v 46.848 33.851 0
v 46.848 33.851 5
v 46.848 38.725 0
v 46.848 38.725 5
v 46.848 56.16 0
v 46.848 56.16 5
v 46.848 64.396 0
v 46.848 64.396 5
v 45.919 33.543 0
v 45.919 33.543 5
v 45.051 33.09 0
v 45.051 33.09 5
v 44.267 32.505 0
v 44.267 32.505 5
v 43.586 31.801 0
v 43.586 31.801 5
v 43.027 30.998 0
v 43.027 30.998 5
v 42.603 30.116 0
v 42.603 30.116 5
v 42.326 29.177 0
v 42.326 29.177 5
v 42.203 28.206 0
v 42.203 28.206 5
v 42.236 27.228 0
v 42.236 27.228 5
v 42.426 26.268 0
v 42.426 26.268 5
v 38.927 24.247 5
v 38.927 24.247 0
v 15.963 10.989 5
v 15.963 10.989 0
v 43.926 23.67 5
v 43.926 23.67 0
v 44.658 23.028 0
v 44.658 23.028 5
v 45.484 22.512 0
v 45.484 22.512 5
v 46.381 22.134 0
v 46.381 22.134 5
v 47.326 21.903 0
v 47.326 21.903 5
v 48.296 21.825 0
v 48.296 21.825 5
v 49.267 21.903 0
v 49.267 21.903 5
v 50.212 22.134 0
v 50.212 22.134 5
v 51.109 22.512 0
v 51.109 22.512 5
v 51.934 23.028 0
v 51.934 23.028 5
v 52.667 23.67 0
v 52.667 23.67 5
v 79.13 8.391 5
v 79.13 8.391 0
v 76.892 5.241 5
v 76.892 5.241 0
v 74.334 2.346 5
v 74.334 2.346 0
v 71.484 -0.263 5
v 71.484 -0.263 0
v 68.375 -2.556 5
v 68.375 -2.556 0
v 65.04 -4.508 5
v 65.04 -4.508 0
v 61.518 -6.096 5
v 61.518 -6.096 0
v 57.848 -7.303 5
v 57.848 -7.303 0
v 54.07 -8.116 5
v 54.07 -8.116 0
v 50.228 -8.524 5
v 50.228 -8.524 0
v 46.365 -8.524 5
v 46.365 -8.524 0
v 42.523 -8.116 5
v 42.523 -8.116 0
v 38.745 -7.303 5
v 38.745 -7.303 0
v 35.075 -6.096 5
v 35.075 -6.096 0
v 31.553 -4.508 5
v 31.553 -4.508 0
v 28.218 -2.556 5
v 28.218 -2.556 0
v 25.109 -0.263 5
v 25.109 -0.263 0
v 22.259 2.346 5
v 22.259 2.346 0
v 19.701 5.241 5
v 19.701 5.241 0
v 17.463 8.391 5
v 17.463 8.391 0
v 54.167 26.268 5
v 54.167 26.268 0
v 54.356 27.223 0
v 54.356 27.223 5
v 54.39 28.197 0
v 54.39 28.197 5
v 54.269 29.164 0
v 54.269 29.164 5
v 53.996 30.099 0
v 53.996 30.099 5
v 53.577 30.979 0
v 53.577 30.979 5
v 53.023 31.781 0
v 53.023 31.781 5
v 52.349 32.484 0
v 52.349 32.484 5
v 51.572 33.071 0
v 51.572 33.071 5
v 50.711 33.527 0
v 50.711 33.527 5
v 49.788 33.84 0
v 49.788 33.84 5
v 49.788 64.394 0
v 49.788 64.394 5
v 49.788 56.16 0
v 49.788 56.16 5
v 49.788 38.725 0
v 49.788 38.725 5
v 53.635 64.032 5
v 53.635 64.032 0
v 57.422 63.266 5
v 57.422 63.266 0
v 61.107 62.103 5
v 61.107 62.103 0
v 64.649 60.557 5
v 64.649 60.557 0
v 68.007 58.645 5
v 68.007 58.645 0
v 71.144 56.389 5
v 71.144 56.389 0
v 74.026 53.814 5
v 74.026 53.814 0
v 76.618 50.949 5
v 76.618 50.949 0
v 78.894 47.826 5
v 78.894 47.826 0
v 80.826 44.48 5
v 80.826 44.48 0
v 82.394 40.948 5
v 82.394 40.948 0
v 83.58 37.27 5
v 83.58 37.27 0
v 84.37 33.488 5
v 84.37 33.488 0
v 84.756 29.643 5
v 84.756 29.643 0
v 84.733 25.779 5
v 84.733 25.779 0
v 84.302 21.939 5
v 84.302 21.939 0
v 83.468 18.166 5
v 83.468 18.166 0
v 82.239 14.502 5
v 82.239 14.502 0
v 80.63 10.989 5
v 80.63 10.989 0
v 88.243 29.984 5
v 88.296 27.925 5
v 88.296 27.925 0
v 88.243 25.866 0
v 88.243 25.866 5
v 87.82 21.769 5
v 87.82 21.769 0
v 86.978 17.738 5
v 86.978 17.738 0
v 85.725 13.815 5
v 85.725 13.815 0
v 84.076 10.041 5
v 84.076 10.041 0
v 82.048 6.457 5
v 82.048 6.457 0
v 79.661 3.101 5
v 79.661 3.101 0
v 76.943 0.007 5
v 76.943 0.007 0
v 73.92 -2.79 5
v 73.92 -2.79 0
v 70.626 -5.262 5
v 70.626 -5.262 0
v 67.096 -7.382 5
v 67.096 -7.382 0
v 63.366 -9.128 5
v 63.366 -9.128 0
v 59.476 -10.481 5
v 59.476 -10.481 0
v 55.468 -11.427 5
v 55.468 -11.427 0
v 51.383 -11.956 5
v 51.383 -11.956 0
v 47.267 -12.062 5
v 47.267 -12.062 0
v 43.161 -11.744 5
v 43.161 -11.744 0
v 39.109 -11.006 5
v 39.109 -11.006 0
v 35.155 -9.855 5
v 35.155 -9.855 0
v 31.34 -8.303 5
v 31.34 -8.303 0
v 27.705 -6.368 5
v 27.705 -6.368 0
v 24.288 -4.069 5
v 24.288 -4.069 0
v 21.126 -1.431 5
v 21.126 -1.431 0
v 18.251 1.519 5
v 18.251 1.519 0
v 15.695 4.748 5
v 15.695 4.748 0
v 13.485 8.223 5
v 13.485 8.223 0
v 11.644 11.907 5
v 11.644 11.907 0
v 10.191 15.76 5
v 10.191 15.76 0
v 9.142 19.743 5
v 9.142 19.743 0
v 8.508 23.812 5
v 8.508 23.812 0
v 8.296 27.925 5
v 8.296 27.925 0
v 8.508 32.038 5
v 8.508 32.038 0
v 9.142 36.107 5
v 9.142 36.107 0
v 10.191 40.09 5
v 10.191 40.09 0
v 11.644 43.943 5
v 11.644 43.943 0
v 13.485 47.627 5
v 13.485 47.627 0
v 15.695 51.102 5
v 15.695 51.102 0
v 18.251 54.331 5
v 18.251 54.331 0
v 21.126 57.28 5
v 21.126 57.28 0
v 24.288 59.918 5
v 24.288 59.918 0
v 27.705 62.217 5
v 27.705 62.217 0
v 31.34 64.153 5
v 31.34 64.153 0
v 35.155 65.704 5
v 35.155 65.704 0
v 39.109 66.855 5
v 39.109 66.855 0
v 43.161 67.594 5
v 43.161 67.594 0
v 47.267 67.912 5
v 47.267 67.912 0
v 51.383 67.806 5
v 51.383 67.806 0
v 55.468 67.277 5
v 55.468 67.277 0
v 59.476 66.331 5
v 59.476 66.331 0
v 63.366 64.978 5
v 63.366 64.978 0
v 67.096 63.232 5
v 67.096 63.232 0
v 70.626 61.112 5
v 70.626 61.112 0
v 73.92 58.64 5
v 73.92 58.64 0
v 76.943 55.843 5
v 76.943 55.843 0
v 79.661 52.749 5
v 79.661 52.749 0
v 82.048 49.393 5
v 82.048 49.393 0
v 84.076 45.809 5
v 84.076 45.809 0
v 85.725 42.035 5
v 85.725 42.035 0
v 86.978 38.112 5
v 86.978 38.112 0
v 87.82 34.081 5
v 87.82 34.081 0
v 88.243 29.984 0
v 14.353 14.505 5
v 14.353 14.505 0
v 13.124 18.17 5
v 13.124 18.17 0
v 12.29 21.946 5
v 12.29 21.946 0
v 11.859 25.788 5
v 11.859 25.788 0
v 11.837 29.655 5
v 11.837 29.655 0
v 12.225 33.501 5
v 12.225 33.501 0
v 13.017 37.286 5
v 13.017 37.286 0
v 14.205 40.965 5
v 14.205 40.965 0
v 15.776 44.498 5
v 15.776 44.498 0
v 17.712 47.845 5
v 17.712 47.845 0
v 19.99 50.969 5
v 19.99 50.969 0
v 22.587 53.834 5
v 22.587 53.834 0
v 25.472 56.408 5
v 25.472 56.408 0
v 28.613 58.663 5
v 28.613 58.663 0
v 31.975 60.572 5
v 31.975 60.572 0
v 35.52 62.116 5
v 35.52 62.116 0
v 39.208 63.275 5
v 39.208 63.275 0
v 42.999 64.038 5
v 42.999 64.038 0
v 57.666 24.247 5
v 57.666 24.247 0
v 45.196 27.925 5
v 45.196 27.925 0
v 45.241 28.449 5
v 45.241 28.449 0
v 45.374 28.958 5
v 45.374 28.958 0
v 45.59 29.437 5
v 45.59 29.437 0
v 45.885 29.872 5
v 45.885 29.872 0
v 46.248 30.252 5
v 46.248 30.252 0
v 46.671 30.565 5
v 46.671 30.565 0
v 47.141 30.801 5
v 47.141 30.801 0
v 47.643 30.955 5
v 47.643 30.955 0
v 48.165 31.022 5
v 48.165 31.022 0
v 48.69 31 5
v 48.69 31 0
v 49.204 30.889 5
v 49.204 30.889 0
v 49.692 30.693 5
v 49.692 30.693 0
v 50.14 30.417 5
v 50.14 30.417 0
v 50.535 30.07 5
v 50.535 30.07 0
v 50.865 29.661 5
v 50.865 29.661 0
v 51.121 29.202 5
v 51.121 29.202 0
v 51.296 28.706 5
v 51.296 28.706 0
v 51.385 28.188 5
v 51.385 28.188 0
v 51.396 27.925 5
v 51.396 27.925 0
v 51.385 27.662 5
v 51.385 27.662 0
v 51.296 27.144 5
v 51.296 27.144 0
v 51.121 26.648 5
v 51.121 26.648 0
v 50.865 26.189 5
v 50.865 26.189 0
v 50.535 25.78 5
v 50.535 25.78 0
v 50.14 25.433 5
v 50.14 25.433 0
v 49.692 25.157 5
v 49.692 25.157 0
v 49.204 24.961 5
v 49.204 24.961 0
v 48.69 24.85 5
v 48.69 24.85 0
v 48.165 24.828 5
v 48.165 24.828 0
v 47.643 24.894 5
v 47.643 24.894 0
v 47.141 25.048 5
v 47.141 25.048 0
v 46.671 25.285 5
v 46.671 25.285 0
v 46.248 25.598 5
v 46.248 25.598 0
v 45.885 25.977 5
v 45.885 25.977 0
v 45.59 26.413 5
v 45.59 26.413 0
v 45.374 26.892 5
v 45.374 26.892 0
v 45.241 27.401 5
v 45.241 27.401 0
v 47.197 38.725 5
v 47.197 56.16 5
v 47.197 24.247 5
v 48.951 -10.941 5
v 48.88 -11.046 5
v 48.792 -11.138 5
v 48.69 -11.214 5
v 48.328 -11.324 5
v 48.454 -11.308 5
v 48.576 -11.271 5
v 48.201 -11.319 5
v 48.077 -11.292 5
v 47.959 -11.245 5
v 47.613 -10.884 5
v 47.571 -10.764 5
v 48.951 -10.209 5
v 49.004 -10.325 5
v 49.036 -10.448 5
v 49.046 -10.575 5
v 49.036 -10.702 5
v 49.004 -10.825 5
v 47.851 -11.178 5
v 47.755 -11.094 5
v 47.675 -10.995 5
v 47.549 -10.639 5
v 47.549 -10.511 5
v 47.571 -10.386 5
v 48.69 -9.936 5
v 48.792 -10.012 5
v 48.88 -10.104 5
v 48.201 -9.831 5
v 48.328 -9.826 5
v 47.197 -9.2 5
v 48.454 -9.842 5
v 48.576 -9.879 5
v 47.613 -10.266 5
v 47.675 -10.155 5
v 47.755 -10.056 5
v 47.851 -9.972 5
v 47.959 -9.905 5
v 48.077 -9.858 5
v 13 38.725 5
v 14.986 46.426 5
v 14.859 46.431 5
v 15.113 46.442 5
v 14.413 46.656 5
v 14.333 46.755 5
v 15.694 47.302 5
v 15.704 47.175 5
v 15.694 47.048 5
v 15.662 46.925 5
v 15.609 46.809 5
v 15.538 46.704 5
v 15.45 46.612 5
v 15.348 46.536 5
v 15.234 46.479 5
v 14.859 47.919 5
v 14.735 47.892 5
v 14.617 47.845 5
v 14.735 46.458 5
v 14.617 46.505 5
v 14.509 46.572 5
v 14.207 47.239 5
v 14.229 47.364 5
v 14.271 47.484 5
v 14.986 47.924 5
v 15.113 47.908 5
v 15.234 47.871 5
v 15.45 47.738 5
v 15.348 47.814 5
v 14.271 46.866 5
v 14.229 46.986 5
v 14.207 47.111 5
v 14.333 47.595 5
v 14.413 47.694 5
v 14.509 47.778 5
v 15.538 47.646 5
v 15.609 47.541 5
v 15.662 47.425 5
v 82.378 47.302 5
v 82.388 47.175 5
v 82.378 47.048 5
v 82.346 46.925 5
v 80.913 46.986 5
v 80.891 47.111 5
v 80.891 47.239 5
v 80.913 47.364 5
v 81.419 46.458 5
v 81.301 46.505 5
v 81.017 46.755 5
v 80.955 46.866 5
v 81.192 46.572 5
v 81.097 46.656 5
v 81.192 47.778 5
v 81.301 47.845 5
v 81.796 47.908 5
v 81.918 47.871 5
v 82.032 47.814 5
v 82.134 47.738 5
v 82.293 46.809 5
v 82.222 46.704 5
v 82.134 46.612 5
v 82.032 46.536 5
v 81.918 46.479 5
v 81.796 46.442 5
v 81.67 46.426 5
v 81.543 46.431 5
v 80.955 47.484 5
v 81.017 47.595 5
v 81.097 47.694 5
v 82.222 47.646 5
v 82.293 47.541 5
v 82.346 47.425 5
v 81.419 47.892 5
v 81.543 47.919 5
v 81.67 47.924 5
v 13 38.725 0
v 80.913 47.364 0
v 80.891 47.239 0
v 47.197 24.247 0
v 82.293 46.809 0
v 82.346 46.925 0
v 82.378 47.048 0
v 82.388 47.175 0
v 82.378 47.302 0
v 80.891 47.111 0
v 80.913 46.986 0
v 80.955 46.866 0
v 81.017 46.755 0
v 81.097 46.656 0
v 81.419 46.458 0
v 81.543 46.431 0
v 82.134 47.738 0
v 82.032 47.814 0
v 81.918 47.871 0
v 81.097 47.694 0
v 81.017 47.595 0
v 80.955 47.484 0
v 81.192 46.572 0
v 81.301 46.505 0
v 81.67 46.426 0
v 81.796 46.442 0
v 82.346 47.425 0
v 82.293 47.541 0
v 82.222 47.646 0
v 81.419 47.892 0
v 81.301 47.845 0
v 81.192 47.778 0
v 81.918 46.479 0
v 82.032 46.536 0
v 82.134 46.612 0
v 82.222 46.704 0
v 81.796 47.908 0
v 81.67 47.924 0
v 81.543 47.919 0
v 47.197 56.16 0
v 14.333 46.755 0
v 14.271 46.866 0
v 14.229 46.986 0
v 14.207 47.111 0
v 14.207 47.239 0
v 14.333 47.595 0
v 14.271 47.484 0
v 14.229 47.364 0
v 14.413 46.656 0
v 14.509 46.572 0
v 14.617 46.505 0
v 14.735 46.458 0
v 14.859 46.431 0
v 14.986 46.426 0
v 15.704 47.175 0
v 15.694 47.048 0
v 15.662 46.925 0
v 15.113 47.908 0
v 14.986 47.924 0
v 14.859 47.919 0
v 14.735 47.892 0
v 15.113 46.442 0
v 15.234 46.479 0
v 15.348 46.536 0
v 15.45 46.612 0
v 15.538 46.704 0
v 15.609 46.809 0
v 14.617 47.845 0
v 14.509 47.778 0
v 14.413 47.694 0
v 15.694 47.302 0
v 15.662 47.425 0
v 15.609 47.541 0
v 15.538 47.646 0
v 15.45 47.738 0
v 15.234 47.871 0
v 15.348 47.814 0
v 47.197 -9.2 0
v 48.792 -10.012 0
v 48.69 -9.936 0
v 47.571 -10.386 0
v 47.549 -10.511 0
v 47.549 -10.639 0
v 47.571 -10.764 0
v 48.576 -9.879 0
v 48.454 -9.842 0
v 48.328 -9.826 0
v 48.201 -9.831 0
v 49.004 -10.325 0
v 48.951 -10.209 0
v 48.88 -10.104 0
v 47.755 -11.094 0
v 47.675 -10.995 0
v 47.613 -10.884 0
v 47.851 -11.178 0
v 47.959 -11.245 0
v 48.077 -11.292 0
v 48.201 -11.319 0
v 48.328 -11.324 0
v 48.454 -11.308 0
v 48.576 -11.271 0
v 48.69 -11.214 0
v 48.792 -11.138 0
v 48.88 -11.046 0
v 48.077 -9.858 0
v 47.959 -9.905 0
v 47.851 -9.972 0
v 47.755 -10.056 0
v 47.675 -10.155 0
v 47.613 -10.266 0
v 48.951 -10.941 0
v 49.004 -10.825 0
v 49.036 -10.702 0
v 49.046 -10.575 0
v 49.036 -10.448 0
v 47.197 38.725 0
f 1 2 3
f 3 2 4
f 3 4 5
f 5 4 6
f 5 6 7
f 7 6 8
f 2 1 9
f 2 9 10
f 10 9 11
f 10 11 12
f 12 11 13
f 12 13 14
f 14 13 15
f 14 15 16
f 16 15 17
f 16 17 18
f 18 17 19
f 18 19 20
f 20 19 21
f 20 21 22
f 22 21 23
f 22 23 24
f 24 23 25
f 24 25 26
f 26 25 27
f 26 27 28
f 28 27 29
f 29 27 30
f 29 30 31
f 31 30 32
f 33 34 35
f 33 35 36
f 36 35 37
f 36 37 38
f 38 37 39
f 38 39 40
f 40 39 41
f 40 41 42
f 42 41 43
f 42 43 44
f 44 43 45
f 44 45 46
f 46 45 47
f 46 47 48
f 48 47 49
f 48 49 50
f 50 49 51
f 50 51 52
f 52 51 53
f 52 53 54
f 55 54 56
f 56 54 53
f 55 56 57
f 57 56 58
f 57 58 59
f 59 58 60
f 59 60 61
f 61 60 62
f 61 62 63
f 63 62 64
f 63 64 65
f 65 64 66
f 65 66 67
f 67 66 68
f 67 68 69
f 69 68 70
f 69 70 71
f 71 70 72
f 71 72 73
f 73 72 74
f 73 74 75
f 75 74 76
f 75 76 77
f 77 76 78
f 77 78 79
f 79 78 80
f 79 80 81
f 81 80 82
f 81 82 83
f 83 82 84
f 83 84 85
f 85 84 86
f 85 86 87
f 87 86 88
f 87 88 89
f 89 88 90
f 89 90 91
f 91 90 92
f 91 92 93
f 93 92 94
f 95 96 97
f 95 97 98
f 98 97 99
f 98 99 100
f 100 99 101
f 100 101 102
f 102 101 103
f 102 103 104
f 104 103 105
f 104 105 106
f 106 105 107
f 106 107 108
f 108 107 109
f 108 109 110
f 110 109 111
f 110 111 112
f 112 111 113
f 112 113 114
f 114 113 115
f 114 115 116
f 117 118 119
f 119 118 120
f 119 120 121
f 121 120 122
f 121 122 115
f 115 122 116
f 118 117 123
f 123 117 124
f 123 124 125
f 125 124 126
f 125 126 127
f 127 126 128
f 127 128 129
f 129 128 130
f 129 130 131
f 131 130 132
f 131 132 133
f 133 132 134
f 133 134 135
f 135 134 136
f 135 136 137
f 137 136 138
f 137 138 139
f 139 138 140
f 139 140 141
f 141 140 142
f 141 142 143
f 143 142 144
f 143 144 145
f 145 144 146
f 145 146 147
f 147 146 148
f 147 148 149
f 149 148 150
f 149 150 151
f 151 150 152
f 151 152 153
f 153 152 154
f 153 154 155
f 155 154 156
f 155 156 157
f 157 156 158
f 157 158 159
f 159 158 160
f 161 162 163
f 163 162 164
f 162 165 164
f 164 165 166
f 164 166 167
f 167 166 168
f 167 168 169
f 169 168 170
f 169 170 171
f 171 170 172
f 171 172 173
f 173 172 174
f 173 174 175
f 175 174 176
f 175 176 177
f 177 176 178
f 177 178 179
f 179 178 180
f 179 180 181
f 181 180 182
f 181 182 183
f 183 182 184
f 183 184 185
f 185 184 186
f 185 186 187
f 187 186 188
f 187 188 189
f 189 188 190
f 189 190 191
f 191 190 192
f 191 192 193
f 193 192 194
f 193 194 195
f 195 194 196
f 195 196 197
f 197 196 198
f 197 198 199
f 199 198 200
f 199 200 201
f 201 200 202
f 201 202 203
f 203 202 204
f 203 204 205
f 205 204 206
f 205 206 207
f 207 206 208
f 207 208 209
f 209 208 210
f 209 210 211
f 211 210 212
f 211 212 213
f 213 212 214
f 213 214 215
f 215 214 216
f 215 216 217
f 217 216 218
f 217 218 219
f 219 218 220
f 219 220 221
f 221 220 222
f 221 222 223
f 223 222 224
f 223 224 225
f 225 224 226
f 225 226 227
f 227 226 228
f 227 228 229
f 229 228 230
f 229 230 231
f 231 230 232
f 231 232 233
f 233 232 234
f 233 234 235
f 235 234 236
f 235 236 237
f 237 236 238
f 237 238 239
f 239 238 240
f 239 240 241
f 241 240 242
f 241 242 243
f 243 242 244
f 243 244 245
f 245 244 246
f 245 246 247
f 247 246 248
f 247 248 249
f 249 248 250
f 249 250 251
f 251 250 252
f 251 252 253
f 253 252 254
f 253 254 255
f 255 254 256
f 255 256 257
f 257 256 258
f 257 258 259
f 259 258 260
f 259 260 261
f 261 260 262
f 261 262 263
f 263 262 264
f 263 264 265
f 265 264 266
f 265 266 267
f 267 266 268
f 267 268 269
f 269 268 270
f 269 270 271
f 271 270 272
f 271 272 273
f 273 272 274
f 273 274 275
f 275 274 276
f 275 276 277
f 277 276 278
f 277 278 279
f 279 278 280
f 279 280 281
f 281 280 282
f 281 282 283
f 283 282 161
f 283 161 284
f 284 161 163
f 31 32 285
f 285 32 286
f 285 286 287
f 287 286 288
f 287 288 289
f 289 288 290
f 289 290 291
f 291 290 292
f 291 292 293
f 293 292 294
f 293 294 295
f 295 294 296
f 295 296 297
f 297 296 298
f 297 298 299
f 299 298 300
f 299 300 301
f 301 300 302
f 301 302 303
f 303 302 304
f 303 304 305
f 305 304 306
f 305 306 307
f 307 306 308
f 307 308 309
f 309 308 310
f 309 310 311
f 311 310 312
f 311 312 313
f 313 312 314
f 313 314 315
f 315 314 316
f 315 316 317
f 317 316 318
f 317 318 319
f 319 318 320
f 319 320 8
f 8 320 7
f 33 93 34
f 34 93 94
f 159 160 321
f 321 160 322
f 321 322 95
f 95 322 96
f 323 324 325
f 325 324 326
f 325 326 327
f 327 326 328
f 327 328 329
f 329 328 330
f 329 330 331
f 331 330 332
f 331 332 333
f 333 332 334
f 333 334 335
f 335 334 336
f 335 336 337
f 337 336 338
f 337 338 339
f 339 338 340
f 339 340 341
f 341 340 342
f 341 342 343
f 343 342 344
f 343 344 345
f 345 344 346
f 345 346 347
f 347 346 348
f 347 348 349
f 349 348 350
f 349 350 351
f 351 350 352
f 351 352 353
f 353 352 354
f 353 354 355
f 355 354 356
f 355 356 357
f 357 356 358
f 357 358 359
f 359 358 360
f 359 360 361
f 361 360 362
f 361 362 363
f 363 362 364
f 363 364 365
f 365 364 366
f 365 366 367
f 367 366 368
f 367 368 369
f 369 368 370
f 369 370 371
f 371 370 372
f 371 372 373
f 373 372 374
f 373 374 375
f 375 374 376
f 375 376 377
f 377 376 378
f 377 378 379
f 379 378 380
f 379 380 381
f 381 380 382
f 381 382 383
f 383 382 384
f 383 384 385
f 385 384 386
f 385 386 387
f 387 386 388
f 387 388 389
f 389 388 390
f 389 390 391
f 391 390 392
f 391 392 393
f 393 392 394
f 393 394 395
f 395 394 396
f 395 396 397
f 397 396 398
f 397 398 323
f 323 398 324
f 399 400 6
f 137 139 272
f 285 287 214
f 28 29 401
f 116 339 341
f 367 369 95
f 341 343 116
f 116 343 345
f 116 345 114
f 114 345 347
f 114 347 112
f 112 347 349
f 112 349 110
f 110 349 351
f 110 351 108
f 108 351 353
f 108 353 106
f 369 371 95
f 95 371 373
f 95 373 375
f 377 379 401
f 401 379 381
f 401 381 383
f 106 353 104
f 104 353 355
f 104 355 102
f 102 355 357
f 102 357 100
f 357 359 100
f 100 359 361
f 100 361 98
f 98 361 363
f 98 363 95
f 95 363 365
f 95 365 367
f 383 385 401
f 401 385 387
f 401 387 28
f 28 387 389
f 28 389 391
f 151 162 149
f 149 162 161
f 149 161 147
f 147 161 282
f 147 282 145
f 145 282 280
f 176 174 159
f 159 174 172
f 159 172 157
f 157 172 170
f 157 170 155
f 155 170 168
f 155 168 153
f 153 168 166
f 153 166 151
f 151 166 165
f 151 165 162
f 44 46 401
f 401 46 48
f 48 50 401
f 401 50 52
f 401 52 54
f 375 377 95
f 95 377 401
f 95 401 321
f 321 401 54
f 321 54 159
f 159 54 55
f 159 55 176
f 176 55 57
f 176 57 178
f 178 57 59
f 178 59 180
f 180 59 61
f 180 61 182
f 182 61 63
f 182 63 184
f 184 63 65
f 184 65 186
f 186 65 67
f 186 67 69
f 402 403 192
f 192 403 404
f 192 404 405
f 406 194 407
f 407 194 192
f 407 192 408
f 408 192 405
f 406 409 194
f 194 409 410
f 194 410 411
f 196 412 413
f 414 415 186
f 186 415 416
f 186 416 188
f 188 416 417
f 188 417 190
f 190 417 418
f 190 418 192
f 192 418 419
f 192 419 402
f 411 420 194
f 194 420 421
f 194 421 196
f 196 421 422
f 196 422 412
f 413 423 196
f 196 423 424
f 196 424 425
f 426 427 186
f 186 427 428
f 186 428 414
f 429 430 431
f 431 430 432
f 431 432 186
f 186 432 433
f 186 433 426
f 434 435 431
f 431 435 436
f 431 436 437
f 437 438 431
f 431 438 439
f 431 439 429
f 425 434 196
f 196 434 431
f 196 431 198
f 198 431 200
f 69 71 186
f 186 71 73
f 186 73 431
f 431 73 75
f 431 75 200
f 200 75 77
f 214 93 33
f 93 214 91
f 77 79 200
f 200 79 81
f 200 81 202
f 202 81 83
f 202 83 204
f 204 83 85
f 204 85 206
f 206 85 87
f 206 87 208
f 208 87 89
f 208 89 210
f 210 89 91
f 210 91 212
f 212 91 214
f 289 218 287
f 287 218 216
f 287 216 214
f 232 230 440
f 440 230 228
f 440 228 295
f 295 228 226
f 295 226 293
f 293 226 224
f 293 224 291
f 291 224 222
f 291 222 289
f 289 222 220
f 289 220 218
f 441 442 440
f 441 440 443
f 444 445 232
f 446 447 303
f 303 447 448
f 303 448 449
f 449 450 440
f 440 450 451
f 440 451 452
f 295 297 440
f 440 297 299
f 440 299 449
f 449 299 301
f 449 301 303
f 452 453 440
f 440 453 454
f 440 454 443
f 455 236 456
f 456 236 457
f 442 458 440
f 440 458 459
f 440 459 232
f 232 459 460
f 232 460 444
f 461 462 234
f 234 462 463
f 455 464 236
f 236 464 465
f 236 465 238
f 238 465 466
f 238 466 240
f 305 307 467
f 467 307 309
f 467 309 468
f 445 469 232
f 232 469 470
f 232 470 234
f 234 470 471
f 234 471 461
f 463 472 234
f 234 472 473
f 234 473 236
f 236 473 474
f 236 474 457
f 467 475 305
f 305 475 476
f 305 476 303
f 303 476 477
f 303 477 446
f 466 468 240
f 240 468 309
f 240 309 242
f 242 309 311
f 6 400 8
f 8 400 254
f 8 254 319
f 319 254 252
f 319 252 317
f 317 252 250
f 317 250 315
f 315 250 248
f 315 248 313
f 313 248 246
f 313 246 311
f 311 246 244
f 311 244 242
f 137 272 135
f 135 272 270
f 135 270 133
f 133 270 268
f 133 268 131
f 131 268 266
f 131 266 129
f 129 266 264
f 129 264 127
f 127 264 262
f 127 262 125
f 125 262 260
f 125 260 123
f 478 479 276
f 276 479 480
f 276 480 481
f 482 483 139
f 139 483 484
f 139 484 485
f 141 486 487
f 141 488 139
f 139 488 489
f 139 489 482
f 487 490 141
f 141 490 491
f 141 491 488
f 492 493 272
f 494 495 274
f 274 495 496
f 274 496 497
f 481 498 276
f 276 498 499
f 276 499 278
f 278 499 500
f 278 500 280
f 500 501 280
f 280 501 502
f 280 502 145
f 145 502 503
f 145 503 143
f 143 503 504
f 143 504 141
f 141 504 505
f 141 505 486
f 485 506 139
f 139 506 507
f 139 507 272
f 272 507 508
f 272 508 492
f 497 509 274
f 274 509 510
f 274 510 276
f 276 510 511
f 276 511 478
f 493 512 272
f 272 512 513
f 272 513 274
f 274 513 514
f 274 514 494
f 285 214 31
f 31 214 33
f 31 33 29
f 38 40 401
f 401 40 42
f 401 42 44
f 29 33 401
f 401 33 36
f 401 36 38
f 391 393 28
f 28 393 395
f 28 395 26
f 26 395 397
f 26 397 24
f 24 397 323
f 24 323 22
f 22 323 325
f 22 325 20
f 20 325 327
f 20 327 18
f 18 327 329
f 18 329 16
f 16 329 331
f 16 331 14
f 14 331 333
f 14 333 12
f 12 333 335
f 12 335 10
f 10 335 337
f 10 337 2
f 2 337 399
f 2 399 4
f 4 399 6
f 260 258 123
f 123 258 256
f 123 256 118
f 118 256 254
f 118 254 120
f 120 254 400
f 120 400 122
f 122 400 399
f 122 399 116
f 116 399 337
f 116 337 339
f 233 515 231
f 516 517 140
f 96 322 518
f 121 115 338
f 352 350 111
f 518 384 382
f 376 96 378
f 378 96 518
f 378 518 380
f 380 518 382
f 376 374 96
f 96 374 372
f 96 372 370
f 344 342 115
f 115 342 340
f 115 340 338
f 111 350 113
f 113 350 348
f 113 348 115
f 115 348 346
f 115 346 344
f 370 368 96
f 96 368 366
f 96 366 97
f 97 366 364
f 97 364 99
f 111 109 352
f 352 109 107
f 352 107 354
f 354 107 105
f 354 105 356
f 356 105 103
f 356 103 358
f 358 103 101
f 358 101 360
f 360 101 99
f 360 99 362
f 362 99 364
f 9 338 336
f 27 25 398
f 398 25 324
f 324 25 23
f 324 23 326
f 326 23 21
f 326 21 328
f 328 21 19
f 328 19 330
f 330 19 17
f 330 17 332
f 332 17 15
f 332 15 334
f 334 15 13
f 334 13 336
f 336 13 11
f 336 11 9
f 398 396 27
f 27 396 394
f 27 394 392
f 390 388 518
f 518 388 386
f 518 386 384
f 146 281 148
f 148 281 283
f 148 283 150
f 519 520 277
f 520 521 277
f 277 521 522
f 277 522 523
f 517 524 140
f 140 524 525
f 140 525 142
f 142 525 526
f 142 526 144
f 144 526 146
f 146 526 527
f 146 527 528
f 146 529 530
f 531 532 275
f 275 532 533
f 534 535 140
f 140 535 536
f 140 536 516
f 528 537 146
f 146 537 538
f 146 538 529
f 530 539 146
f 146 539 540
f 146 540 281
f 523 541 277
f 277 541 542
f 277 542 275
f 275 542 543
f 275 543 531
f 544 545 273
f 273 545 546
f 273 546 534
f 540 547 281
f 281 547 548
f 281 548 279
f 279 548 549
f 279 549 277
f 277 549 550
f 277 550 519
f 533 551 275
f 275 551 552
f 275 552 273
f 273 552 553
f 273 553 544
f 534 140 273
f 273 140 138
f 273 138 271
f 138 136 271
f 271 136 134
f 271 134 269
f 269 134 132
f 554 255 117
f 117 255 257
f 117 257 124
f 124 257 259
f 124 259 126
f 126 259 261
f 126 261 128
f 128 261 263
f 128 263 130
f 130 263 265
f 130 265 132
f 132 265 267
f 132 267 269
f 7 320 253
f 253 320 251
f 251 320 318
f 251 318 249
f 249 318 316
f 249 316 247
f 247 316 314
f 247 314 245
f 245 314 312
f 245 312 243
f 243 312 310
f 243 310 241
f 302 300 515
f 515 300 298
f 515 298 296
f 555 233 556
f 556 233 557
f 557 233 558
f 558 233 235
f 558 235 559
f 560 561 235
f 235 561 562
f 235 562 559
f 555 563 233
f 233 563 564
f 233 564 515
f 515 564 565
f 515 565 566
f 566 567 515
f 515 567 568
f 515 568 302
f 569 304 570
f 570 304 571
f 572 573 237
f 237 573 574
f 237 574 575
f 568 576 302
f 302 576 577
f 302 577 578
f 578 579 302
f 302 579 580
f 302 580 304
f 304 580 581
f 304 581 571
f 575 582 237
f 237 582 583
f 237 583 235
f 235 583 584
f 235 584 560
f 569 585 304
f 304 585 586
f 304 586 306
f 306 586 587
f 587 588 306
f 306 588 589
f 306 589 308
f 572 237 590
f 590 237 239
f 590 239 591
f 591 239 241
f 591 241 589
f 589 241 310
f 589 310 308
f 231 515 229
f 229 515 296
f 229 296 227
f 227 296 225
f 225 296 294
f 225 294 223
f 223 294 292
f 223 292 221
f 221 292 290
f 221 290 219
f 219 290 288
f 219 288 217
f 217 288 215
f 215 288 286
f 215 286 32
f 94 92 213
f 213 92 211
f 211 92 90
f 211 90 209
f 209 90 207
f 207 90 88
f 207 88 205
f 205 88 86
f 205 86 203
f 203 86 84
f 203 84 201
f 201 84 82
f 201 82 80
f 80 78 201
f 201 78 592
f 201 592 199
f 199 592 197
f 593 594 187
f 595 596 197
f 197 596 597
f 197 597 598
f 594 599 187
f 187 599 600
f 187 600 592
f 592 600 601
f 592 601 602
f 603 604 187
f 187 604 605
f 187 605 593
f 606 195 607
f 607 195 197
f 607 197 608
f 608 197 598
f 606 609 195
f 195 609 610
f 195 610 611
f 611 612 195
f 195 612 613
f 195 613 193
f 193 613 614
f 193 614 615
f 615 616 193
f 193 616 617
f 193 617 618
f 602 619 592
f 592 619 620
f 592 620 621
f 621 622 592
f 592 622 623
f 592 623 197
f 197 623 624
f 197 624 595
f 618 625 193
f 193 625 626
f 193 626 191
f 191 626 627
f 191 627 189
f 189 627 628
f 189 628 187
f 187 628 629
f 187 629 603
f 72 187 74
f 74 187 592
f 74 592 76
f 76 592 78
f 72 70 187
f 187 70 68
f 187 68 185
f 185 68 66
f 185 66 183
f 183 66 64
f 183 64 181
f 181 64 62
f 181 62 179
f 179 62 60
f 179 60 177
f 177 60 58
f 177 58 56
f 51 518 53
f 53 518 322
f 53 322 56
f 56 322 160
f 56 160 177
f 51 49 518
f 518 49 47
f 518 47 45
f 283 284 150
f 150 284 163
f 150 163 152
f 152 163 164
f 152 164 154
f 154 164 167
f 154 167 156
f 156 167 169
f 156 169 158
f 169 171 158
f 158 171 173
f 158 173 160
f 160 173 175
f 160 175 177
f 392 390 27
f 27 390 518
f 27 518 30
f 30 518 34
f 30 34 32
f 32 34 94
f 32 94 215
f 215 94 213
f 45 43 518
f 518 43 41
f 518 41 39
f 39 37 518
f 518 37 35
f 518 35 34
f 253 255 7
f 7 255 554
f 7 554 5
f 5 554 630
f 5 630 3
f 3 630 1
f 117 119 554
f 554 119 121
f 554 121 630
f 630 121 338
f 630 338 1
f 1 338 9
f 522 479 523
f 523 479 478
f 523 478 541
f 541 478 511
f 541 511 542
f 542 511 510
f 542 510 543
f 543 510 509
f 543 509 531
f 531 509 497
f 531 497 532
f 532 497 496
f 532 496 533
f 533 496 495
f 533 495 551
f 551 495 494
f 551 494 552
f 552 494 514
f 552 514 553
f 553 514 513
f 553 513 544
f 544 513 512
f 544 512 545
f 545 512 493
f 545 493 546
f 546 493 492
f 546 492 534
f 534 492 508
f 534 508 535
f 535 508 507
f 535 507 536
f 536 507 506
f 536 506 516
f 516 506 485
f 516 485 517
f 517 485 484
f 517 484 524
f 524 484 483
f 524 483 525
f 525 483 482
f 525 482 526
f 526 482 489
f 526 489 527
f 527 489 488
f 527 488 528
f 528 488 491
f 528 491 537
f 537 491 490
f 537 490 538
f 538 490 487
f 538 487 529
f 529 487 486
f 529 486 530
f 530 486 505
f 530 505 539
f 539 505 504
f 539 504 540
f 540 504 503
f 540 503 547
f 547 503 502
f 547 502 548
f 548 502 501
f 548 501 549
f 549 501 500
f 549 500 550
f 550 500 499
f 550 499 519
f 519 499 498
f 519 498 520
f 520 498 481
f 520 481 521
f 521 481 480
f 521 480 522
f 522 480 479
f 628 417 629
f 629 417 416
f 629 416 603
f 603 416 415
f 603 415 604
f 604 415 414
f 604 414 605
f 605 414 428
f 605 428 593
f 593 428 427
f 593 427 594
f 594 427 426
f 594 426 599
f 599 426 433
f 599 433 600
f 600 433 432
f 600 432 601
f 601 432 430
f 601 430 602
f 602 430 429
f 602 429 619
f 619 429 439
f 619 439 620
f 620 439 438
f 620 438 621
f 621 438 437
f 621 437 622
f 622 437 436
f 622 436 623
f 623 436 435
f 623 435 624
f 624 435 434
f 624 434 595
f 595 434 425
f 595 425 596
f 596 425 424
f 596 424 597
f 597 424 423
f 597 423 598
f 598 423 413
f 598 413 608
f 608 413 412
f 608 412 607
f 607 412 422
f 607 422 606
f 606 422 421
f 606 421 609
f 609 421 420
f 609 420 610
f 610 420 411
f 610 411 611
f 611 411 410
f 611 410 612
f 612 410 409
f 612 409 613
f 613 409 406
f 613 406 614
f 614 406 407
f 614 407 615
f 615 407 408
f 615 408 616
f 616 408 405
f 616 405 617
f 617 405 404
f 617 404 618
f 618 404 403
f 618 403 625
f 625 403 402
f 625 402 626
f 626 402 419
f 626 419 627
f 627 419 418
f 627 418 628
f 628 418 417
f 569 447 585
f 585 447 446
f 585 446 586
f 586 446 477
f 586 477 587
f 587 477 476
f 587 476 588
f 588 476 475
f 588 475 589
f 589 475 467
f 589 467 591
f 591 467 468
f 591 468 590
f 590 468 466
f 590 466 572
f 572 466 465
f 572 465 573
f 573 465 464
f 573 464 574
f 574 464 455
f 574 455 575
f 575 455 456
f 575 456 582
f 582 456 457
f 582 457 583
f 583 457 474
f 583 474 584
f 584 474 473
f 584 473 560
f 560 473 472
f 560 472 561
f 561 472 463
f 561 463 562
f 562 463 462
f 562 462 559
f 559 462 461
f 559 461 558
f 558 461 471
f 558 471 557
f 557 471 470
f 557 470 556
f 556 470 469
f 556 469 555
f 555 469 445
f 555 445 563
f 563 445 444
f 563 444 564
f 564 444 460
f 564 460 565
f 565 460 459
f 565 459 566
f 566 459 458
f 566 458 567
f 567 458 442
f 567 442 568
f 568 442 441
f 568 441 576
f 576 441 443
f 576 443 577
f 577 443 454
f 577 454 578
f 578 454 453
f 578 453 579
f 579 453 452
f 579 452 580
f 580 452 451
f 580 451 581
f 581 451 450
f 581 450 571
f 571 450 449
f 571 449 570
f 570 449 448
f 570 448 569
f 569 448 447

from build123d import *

# Parameters (mm, degrees)
SKETCH_1_R          = 40
SKETCH_1_R_2        = 3.1
EXTRUDE_2_DEPTH     = 5
SKETCH_2_R          = 0.75
CUT_EXTRUDE_1_DEPTH = 5


with BuildPart() as part:
    # 草图1 → 凸台-拉伸2 (new body)
    # profile 1 of 11: a face of its own
    with BuildSketch(Plane.XY):
        with Locations((48.296474355, 27.924907455)):
            Circle(SKETCH_1_R)
        with BuildLine():
            Line((81.82316003, 10.300317263), (81.07316003, 9.001279158))
            Line((81.07316003, 9.001279158), (80.32316003, 7.702241052))
            Line((80.32316003, 7.702241052), (79.12969775, 8.391286821))
            ThreePointArc((79.12969775, 8.391286821), (48.296474355, -8.575092545), (17.46325096, 8.391286821))
            Line((17.46325096, 8.391286821), (16.26978868, 7.702241052))
            Line((16.26978868, 7.702241052), (15.51978868, 9.001279158))
            Line((15.51978868, 9.001279158), (14.76978868, 10.300317263))
            Line((14.76978868, 10.300317263), (15.96325096, 10.989363032))
            ThreePointArc((15.96325096, 10.989363032), (16.69953266, 46.197380619), (46.84834221, 64.396168926))
            Line((46.84834221, 64.396168926), (46.84834221, 66.091480515))
            Line((46.84834221, 66.091480515), (49.787930978, 66.091480515))
            Line((49.787930978, 66.091480515), (49.787930978, 64.394422905))
            ThreePointArc((49.787930978, 64.394422905), (74.627902029, 53.201495766), (84.796474355, 27.924907455))
            ThreePointArc((84.796474355, 27.924907455), (83.739475455, 19.204605107), (80.62969775, 10.989363032))
            Line((80.62969775, 10.989363032), (81.82316003, 10.300317263))
        make_face(mode=Mode.SUBTRACT)
    # profile 2 of 11: a face of its own
    with BuildSketch(Plane.XY):
        with BuildLine():
            Line((52.565394479, 27.19229608), (54.167021201, 26.267596461))
            ThreePointArc((54.167021201, 26.267596461), (54.338838783, 27.088347762), (54.396474355, 27.924907455))
            ThreePointArc((54.396474355, 27.924907455), (53.108328748, 31.67404833), (49.787930978, 33.839766468))
            Line((49.787930978, 33.839766468), (49.787930978, 32.638782116))
            Line((49.787930978, 32.638782116), (46.84834221, 32.638782116))
            Line((46.84834221, 32.638782116), (46.84834221, 33.850522469))
            ThreePointArc((46.84834221, 33.850522469), (43.027133101, 30.998023585), (42.425927509, 26.267596461))
            Line((42.425927509, 26.267596461), (43.927397053, 27.134470306))
            Line((43.927397053, 27.134470306), (45.427397053, 24.536394095))
            Line((45.427397053, 24.536394095), (43.925927509, 23.66952025))
            ThreePointArc((43.925927509, 23.66952025), (48.296474355, 21.824907455), (52.667021201, 23.66952025))
            Line((52.667021201, 23.66952025), (51.065394479, 24.594219869))
            Line((51.065394479, 24.594219869), (52.565394479, 27.19229608))
        make_face()
        with Locations((48.296474355, 27.924907455)):
            Circle(SKETCH_1_R_2, mode=Mode.SUBTRACT)
    # profile 3 of 11: a face of its own
    with BuildSketch(Plane.XY):
        with BuildLine():
            ThreePointArc((15.96325096, 10.989363032), (16.686547117, 9.674907455), (17.46325096, 8.391286821))
            Line((17.46325096, 8.391286821), (43.925927509, 23.66952025))
            ThreePointArc((43.925927509, 23.66952025), (43.013719392, 24.874907455), (42.425927509, 26.267596461))
            Line((42.425927509, 26.267596461), (15.96325096, 10.989363032))
        make_face()
    # profile 4 of 11: a face of its own
    with BuildSketch(Plane.XY):
        with BuildLine():
            Line((16.26978868, 7.702241052), (17.46325096, 8.391286821))
            ThreePointArc((17.46325096, 8.391286821), (16.686547117, 9.674907455), (15.96325096, 10.989363032))
            Line((15.96325096, 10.989363032), (14.76978868, 10.300317263))
            Line((14.76978868, 10.300317263), (15.51978868, 9.001279158))
            Line((15.51978868, 9.001279158), (16.26978868, 7.702241052))
        make_face()
    # profile 5 of 11: a face of its own
    with BuildSketch(Plane.XY):
        with BuildLine():
            ThreePointArc((52.667021201, 23.66952025), (53.579229318, 24.874907455), (54.167021201, 26.267596461))
            Line((54.167021201, 26.267596461), (52.565394479, 27.19229608))
            Line((52.565394479, 27.19229608), (51.065394479, 24.594219869))
            Line((51.065394479, 24.594219869), (52.667021201, 23.66952025))
        make_face()
    # profile 6 of 11: a face of its own
    with BuildSketch(Plane.XY):
        with BuildLine():
            Line((49.787930978, 32.638782116), (49.787930978, 33.839766468))
            ThreePointArc((49.787930978, 33.839766468), (48.3187942, 34.024866621), (46.84834221, 33.850522469))
            Line((46.84834221, 33.850522469), (46.84834221, 32.638782116))
            Line((46.84834221, 32.638782116), (49.787930978, 32.638782116))
        make_face()
    # profile 7 of 11: a face of its own
    with BuildSketch(Plane.XY):
        with BuildLine():
            ThreePointArc((42.425927509, 26.267596461), (43.013719392, 24.874907455), (43.925927509, 23.66952025))
            Line((43.925927509, 23.66952025), (45.427397053, 24.536394095))
            Line((45.427397053, 24.536394095), (43.927397053, 27.134470306))
            Line((43.927397053, 27.134470306), (42.425927509, 26.267596461))
        make_face()
    # profile 8 of 11: a face of its own
    with BuildSketch(Plane.XY):
        with BuildLine():
            Line((49.787930978, 33.839766468), (49.787930978, 64.394422905))
            ThreePointArc((49.787930978, 64.394422905), (48.318154178, 64.424901017), (46.84834221, 64.396168926))
            Line((46.84834221, 64.396168926), (46.84834221, 33.850522469))
            ThreePointArc((46.84834221, 33.850522469), (48.3187942, 34.024866621), (49.787930978, 33.839766468))
        make_face()
    # profile 9 of 11: a face of its own
    with BuildSketch(Plane.XY):
        with BuildLine():
            ThreePointArc((46.84834221, 64.396168926), (48.318154178, 64.424901017), (49.787930978, 64.394422905))
            Line((49.787930978, 64.394422905), (49.787930978, 66.091480515))
            Line((49.787930978, 66.091480515), (46.84834221, 66.091480515))
            Line((46.84834221, 66.091480515), (46.84834221, 64.396168926))
        make_face()
    # profile 10 of 11: a face of its own
    with BuildSketch(Plane.XY):
        with BuildLine():
            Line((80.32316003, 7.702241052), (81.07316003, 9.001279158))
            Line((81.07316003, 9.001279158), (81.82316003, 10.300317263))
            Line((81.82316003, 10.300317263), (80.62969775, 10.989363032))
            ThreePointArc((80.62969775, 10.989363032), (79.906401593, 9.674907455), (79.12969775, 8.391286821))
            Line((79.12969775, 8.391286821), (80.32316003, 7.702241052))
        make_face()
    # profile 11 of 11: a face of its own
    with BuildSketch(Plane.XY):
        with BuildLine():
            ThreePointArc((79.12969775, 8.391286821), (79.906401593, 9.674907455), (80.62969775, 10.989363032))
            Line((80.62969775, 10.989363032), (54.167021201, 26.267596461))
            ThreePointArc((54.167021201, 26.267596461), (53.579229318, 24.874907455), (52.667021201, 23.66952025))
            Line((52.667021201, 23.66952025), (79.12969775, 8.391286821))
        make_face()
    extrude(amount=EXTRUDE_2_DEPTH)

    # 草图2 → 切除-拉伸1 (cut)
    with BuildSketch(Plane.XY.offset(5)):
        with Locations((14.954496309, 47.174907455)):
            Circle(SKETCH_2_R)
        with Locations((81.638452401, 47.174907455)):
            Circle(SKETCH_2_R)
        with Locations((48.296474355, -10.575092545)):
            Circle(SKETCH_2_R)
    extrude(amount=-CUT_EXTRUDE_1_DEPTH, mode=Mode.SUBTRACT)


solid = part.part
